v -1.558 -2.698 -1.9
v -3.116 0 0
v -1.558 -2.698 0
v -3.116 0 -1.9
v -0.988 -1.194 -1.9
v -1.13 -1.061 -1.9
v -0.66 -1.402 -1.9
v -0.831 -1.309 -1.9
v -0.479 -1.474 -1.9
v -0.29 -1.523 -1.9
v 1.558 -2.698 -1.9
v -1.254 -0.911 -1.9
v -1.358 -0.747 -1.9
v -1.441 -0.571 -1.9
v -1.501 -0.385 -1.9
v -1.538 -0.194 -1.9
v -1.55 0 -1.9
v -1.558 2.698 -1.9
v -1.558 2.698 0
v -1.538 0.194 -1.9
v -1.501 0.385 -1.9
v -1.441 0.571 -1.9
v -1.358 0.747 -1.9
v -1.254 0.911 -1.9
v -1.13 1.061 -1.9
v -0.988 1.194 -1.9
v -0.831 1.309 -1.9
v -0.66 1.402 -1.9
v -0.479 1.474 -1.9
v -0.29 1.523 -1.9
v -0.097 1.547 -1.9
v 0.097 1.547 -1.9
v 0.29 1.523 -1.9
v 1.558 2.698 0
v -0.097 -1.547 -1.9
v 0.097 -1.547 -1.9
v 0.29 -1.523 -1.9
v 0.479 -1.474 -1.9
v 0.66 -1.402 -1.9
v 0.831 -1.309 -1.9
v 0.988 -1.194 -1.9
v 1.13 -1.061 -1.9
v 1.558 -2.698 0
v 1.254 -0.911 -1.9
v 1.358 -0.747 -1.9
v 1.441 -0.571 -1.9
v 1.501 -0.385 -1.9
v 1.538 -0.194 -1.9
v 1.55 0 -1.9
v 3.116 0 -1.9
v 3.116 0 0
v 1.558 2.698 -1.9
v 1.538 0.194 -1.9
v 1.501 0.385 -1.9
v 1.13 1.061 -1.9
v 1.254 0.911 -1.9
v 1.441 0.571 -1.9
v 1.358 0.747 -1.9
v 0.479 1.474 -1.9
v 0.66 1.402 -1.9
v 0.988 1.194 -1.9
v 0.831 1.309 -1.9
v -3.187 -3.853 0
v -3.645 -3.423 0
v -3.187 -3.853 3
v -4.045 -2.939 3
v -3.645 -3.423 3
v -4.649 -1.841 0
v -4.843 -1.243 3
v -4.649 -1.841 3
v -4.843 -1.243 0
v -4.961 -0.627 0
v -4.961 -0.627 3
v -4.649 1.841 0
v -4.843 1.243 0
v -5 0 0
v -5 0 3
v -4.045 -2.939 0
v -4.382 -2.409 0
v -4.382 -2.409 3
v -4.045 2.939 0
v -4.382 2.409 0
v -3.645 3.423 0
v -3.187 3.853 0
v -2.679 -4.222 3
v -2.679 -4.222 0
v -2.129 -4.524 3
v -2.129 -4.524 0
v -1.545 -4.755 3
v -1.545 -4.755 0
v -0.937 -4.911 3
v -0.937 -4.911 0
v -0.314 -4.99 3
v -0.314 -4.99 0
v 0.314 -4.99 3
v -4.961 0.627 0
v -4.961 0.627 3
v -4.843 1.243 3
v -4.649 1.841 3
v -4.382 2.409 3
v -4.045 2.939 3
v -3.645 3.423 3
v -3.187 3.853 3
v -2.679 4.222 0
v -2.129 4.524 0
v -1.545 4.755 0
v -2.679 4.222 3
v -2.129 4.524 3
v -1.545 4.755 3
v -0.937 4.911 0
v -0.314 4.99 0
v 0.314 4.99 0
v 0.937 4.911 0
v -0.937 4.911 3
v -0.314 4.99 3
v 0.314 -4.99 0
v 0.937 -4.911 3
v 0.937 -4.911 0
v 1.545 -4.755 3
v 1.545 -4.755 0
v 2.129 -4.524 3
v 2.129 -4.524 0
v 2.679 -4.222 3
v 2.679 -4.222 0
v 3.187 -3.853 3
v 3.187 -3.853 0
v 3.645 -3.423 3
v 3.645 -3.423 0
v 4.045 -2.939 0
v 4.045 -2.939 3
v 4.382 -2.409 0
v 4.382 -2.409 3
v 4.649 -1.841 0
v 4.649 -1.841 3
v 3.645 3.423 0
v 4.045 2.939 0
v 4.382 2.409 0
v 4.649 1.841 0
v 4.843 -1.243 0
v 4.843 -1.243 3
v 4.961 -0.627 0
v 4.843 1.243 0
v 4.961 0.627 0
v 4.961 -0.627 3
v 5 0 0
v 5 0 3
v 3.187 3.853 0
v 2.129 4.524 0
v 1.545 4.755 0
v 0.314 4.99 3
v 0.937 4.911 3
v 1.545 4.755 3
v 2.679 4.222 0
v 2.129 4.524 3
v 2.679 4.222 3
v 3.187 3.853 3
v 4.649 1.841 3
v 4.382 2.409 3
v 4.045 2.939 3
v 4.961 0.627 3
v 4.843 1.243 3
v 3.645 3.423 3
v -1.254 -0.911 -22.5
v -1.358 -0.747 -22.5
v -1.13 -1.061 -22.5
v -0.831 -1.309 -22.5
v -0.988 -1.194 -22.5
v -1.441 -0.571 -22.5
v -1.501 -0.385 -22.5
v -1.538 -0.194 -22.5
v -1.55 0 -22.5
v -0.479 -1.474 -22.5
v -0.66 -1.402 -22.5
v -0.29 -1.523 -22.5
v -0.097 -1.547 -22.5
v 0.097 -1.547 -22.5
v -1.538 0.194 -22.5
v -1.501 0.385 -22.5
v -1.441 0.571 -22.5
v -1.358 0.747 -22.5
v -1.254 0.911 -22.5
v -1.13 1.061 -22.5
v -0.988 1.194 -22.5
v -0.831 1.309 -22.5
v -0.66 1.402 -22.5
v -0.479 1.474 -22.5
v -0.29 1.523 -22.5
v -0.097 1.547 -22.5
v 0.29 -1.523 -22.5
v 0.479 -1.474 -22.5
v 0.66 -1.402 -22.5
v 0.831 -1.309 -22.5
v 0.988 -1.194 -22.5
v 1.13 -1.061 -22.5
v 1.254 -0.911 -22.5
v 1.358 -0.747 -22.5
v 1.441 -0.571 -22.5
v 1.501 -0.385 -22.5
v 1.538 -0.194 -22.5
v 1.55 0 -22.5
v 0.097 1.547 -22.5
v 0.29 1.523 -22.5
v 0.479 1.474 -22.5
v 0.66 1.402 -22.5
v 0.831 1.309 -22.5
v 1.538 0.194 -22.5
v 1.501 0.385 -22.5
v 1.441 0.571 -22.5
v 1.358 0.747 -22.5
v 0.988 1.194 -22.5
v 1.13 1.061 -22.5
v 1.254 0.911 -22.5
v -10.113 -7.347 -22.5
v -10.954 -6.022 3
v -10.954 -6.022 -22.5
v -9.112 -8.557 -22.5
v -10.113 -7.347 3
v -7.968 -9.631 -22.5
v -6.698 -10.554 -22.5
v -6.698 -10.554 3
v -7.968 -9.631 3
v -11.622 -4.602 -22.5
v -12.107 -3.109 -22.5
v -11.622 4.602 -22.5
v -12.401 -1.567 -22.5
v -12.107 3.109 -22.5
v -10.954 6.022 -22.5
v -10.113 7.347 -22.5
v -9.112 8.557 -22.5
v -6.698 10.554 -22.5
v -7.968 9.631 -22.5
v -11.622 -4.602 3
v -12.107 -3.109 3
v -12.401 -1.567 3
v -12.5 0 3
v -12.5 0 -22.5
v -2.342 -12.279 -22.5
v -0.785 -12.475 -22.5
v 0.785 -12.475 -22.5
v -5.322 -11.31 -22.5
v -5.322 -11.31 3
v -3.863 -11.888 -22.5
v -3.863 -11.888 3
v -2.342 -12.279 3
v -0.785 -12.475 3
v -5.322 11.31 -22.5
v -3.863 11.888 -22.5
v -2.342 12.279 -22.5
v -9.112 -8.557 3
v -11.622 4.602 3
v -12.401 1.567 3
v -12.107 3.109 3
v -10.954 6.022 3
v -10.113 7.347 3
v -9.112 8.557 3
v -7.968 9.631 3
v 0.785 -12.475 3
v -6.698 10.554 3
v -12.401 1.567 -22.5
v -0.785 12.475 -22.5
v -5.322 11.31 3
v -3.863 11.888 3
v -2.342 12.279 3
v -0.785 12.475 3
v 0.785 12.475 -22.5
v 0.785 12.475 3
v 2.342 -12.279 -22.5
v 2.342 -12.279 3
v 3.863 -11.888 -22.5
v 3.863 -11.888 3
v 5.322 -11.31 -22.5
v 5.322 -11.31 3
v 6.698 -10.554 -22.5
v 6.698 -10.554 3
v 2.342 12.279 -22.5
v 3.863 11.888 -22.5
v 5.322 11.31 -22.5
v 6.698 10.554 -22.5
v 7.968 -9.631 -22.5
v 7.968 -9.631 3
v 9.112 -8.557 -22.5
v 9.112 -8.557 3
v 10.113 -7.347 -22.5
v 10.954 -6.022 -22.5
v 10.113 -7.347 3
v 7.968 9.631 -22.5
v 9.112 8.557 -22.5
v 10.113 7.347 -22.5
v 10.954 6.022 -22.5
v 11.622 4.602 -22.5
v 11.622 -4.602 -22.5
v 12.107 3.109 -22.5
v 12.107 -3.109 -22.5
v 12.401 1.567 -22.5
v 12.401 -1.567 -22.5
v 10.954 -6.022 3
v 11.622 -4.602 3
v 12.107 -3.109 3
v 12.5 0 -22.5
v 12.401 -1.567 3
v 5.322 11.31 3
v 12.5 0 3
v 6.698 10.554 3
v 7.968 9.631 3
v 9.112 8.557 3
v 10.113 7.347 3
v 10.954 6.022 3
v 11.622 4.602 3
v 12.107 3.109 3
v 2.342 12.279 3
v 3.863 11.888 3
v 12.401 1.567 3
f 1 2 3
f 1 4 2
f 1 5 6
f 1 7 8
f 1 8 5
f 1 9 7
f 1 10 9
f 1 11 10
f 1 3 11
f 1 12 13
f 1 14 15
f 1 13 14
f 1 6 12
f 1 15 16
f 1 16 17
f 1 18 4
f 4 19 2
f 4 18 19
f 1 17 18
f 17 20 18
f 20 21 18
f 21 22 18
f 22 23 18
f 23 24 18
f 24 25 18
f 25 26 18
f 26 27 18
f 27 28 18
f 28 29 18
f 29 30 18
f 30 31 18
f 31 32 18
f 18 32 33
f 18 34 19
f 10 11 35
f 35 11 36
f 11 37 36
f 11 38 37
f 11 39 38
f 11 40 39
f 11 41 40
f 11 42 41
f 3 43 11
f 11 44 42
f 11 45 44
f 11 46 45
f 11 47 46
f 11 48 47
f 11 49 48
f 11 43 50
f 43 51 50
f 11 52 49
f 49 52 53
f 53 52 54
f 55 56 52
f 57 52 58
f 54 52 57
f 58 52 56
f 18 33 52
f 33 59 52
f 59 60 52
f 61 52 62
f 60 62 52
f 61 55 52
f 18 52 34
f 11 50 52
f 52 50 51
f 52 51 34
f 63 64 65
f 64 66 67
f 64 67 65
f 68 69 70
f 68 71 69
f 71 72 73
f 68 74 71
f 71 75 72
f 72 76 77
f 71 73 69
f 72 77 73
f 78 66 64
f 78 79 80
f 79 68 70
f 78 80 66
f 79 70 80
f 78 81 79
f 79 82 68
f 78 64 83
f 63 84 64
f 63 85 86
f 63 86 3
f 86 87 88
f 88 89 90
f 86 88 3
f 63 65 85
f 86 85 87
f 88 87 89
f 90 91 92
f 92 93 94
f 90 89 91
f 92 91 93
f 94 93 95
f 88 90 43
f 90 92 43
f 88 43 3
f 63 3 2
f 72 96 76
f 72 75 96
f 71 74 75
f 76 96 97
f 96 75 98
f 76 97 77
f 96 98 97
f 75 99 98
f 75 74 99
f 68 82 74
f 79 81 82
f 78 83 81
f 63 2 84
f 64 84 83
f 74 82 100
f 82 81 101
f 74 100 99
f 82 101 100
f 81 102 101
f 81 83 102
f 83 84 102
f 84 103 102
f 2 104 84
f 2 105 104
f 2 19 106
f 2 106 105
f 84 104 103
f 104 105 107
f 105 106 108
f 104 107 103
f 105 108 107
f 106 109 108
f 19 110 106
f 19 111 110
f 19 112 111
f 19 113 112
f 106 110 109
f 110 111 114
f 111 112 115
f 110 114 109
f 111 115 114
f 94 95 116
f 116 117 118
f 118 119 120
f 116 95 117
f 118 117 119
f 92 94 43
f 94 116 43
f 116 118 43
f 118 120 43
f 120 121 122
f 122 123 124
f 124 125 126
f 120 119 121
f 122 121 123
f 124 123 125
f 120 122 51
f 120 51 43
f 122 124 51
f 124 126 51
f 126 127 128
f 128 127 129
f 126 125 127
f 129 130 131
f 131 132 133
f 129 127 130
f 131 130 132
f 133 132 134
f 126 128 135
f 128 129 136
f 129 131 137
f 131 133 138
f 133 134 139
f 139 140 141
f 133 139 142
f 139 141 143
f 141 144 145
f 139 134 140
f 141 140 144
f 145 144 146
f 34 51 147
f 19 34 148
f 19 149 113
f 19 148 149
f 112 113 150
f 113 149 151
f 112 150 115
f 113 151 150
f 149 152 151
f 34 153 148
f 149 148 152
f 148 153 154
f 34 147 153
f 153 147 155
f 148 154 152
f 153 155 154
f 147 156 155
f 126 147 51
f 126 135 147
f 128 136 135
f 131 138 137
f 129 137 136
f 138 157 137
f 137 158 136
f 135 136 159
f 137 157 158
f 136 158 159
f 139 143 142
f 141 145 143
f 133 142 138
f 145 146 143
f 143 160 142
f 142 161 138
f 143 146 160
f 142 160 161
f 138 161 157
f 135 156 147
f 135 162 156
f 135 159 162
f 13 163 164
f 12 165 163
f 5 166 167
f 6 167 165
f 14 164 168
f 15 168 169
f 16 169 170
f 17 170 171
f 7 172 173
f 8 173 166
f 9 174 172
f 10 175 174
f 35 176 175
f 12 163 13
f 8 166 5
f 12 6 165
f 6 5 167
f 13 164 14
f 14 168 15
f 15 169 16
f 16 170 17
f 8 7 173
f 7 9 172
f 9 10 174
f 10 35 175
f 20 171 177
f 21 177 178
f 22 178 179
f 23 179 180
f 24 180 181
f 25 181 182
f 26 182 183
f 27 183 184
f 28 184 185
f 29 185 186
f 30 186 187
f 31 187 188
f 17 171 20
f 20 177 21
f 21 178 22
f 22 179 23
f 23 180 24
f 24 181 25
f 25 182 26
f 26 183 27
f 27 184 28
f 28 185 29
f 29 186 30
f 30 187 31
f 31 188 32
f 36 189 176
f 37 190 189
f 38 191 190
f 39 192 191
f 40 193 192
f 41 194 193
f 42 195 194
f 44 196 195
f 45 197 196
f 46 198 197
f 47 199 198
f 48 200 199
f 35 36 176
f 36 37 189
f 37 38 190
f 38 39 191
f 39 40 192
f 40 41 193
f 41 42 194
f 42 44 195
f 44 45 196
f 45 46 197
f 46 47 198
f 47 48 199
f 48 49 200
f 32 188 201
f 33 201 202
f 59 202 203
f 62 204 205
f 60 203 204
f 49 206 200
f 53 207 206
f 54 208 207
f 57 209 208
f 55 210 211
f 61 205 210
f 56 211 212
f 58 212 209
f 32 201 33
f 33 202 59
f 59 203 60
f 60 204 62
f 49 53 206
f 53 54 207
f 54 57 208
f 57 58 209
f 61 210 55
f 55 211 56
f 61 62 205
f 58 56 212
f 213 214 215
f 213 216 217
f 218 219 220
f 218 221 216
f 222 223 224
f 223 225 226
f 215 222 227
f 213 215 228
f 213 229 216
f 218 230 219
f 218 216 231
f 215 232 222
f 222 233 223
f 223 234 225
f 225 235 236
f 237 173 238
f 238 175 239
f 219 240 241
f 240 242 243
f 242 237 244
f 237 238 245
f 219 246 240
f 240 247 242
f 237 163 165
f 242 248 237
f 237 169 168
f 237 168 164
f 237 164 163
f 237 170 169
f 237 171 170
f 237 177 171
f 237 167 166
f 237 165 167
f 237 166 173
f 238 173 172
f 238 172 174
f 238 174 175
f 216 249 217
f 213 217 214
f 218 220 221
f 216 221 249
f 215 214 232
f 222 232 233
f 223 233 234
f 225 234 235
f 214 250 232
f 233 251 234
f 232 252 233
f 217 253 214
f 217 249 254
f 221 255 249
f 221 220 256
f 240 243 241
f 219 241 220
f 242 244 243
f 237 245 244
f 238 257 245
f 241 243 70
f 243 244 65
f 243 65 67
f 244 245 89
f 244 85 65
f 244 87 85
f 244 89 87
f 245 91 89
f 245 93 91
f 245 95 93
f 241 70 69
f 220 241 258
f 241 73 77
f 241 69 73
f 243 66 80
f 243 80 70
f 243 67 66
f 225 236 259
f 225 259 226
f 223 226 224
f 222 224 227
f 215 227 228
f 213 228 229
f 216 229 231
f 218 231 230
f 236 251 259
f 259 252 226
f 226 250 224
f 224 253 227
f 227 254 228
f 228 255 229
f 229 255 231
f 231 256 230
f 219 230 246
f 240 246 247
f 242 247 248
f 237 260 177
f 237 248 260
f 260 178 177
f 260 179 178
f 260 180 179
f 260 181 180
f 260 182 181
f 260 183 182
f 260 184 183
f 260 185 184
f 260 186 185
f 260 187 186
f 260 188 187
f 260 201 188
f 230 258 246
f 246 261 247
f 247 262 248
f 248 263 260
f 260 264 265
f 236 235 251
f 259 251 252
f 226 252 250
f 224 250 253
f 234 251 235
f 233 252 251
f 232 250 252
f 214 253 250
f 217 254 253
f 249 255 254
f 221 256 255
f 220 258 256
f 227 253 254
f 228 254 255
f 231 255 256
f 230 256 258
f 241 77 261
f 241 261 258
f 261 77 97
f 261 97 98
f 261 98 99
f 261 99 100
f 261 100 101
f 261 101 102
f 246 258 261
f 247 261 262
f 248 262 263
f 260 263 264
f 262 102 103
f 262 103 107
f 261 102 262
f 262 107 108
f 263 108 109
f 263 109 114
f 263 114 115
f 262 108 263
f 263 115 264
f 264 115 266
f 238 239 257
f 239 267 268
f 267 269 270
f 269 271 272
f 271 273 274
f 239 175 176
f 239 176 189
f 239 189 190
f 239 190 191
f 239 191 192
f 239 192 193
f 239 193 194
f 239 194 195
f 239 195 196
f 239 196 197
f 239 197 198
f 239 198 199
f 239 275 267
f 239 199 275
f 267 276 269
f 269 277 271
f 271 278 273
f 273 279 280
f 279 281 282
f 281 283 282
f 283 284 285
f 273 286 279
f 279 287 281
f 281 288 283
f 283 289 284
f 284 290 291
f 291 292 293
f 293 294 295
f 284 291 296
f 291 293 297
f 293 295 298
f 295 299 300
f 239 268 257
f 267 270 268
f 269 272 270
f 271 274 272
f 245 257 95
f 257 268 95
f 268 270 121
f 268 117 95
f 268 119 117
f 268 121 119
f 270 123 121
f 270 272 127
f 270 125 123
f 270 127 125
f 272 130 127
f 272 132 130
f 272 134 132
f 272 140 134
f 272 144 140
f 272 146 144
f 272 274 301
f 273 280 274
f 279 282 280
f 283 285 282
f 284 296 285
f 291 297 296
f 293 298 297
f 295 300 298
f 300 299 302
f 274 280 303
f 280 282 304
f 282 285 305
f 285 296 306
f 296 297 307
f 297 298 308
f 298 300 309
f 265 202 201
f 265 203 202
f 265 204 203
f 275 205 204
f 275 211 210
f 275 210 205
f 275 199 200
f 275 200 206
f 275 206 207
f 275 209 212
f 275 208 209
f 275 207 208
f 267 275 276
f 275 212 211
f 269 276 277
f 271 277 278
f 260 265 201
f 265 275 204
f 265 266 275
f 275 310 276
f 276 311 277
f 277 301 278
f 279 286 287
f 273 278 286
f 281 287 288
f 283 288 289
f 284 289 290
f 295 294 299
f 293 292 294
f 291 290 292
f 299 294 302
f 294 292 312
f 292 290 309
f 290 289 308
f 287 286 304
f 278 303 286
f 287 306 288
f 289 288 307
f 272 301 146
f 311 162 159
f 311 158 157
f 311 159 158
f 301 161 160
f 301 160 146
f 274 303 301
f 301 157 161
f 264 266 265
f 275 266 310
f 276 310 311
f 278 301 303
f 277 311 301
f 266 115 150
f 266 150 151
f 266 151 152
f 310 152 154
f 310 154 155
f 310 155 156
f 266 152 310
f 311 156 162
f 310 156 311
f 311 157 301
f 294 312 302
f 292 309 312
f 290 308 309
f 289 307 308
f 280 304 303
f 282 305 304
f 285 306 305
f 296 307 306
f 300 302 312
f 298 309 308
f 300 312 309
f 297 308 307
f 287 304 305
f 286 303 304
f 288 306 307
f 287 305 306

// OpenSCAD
$fn = 50;


difference() {
	union() {
		translate(v = [0, 0, -22.5000000000]) {
			cylinder(h = 25.5000000000, r = 12.5000000000);
		}
	}
	union() {
		translate(v = [0, 0, 0]) {
			rotate(a = [0, 0, 0]) {
				difference() {
					union() {
						translate(v = [0, 0, -1.9000000000]) {
							linear_extrude(height = 1.9000000000) {
								polygon(points = [[3.1158000000, 0.0000000000], [1.5579000000, 2.6983619531], [-1.5579000000, 2.6983619531], [-3.1158000000, 0.0000000000], [-1.5579000000, -2.6983619531], [1.5579000000, -2.6983619531]]);
							}
						}
					}
					union();
				}
			}
		}
		#cylinder(h = 3, r = 5.0000000000);
		#translate(v = [0, 0, -100.0000000000]) {
			cylinder(h = 200, r = 1.5500000000);
		}
	}
}
